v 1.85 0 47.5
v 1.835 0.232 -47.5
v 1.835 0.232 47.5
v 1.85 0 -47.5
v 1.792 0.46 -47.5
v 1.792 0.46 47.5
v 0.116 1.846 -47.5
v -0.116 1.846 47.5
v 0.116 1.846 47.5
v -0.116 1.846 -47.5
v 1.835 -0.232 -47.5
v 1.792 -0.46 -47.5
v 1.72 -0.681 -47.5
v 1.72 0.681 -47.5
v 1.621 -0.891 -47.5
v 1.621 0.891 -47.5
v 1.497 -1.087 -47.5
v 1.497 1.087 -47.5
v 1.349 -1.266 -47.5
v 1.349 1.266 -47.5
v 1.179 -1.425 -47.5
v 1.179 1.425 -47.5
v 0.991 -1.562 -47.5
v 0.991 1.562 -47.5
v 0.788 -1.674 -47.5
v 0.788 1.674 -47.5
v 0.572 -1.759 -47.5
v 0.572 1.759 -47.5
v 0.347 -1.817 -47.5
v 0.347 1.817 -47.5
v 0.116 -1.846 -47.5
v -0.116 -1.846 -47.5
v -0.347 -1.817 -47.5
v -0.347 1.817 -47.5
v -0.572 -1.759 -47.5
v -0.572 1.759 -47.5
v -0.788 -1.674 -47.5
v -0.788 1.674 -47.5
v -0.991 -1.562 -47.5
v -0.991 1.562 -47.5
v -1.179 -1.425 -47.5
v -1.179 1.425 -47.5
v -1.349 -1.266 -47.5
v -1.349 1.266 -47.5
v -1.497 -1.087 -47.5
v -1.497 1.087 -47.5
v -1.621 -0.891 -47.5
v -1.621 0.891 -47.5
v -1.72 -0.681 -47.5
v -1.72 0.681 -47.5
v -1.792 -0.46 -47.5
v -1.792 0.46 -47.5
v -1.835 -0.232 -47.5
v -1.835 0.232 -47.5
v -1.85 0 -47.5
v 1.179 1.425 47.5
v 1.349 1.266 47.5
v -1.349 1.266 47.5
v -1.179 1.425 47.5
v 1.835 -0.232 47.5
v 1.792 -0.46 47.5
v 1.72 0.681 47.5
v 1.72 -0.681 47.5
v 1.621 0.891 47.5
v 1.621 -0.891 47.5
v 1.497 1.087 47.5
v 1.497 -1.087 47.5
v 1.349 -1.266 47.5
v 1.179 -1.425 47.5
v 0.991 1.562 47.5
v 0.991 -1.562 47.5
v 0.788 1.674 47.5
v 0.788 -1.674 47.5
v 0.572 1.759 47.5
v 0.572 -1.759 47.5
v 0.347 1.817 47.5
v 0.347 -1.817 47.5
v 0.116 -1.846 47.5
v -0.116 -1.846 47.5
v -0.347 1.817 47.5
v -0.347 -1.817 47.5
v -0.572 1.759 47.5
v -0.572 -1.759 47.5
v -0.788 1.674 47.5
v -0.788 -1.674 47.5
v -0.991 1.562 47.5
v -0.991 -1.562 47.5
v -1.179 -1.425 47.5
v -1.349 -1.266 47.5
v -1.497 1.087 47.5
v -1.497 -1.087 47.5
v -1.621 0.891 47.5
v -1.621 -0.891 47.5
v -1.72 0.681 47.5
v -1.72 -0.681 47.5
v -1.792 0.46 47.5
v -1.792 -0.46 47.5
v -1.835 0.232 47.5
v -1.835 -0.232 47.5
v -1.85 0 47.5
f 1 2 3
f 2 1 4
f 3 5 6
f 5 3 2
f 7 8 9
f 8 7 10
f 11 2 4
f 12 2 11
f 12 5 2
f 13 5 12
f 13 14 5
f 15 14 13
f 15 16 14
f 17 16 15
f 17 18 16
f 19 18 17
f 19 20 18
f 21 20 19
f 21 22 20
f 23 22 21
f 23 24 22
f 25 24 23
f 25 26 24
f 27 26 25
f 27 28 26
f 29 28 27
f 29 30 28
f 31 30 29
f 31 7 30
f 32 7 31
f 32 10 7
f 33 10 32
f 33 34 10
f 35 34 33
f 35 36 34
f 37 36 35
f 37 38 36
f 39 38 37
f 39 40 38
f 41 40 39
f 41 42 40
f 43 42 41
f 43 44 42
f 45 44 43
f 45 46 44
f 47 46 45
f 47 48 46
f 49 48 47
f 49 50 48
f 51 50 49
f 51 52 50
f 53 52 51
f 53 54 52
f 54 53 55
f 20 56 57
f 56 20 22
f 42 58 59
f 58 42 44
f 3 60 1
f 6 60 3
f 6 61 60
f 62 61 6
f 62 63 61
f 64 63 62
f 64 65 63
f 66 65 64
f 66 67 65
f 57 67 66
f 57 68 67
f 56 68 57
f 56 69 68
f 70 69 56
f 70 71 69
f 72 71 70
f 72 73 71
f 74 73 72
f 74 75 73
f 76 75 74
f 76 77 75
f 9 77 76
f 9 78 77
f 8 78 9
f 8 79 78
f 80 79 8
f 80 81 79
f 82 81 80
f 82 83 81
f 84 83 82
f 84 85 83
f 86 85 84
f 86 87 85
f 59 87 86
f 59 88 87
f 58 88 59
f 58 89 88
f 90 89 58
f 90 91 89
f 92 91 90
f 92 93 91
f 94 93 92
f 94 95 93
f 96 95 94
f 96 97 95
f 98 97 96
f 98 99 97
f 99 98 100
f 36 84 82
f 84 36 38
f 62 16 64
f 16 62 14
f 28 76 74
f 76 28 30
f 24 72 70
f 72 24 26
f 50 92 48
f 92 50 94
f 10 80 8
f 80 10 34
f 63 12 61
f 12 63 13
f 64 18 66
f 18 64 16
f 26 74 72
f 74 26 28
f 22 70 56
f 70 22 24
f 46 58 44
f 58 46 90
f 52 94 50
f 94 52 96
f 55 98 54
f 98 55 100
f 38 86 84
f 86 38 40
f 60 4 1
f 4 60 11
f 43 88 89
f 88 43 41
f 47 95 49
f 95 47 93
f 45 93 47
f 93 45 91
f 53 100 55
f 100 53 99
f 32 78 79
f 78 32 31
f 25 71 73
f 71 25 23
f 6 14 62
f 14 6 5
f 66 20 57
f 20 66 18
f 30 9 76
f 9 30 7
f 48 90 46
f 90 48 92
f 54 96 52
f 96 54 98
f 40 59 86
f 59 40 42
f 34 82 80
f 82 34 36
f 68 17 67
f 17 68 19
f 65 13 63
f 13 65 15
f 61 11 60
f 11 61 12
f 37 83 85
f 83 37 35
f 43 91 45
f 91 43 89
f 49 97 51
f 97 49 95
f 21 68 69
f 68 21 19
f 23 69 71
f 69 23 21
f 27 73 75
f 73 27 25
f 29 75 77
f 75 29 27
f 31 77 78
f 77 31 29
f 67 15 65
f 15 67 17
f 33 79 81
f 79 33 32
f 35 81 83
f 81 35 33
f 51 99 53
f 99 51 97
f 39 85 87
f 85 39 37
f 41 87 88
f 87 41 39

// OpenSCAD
$fn = 50;


difference() {
	union() {
		translate(v = [0, 0, -47.5000000000]) {
			cylinder(h = 95, r = 1.8500000000);
		}
	}
	union() {
		translate(v = [0, 0, -100.0000000000]) {
			cylinder(h = 200, r = 0);
		}
	}
}
